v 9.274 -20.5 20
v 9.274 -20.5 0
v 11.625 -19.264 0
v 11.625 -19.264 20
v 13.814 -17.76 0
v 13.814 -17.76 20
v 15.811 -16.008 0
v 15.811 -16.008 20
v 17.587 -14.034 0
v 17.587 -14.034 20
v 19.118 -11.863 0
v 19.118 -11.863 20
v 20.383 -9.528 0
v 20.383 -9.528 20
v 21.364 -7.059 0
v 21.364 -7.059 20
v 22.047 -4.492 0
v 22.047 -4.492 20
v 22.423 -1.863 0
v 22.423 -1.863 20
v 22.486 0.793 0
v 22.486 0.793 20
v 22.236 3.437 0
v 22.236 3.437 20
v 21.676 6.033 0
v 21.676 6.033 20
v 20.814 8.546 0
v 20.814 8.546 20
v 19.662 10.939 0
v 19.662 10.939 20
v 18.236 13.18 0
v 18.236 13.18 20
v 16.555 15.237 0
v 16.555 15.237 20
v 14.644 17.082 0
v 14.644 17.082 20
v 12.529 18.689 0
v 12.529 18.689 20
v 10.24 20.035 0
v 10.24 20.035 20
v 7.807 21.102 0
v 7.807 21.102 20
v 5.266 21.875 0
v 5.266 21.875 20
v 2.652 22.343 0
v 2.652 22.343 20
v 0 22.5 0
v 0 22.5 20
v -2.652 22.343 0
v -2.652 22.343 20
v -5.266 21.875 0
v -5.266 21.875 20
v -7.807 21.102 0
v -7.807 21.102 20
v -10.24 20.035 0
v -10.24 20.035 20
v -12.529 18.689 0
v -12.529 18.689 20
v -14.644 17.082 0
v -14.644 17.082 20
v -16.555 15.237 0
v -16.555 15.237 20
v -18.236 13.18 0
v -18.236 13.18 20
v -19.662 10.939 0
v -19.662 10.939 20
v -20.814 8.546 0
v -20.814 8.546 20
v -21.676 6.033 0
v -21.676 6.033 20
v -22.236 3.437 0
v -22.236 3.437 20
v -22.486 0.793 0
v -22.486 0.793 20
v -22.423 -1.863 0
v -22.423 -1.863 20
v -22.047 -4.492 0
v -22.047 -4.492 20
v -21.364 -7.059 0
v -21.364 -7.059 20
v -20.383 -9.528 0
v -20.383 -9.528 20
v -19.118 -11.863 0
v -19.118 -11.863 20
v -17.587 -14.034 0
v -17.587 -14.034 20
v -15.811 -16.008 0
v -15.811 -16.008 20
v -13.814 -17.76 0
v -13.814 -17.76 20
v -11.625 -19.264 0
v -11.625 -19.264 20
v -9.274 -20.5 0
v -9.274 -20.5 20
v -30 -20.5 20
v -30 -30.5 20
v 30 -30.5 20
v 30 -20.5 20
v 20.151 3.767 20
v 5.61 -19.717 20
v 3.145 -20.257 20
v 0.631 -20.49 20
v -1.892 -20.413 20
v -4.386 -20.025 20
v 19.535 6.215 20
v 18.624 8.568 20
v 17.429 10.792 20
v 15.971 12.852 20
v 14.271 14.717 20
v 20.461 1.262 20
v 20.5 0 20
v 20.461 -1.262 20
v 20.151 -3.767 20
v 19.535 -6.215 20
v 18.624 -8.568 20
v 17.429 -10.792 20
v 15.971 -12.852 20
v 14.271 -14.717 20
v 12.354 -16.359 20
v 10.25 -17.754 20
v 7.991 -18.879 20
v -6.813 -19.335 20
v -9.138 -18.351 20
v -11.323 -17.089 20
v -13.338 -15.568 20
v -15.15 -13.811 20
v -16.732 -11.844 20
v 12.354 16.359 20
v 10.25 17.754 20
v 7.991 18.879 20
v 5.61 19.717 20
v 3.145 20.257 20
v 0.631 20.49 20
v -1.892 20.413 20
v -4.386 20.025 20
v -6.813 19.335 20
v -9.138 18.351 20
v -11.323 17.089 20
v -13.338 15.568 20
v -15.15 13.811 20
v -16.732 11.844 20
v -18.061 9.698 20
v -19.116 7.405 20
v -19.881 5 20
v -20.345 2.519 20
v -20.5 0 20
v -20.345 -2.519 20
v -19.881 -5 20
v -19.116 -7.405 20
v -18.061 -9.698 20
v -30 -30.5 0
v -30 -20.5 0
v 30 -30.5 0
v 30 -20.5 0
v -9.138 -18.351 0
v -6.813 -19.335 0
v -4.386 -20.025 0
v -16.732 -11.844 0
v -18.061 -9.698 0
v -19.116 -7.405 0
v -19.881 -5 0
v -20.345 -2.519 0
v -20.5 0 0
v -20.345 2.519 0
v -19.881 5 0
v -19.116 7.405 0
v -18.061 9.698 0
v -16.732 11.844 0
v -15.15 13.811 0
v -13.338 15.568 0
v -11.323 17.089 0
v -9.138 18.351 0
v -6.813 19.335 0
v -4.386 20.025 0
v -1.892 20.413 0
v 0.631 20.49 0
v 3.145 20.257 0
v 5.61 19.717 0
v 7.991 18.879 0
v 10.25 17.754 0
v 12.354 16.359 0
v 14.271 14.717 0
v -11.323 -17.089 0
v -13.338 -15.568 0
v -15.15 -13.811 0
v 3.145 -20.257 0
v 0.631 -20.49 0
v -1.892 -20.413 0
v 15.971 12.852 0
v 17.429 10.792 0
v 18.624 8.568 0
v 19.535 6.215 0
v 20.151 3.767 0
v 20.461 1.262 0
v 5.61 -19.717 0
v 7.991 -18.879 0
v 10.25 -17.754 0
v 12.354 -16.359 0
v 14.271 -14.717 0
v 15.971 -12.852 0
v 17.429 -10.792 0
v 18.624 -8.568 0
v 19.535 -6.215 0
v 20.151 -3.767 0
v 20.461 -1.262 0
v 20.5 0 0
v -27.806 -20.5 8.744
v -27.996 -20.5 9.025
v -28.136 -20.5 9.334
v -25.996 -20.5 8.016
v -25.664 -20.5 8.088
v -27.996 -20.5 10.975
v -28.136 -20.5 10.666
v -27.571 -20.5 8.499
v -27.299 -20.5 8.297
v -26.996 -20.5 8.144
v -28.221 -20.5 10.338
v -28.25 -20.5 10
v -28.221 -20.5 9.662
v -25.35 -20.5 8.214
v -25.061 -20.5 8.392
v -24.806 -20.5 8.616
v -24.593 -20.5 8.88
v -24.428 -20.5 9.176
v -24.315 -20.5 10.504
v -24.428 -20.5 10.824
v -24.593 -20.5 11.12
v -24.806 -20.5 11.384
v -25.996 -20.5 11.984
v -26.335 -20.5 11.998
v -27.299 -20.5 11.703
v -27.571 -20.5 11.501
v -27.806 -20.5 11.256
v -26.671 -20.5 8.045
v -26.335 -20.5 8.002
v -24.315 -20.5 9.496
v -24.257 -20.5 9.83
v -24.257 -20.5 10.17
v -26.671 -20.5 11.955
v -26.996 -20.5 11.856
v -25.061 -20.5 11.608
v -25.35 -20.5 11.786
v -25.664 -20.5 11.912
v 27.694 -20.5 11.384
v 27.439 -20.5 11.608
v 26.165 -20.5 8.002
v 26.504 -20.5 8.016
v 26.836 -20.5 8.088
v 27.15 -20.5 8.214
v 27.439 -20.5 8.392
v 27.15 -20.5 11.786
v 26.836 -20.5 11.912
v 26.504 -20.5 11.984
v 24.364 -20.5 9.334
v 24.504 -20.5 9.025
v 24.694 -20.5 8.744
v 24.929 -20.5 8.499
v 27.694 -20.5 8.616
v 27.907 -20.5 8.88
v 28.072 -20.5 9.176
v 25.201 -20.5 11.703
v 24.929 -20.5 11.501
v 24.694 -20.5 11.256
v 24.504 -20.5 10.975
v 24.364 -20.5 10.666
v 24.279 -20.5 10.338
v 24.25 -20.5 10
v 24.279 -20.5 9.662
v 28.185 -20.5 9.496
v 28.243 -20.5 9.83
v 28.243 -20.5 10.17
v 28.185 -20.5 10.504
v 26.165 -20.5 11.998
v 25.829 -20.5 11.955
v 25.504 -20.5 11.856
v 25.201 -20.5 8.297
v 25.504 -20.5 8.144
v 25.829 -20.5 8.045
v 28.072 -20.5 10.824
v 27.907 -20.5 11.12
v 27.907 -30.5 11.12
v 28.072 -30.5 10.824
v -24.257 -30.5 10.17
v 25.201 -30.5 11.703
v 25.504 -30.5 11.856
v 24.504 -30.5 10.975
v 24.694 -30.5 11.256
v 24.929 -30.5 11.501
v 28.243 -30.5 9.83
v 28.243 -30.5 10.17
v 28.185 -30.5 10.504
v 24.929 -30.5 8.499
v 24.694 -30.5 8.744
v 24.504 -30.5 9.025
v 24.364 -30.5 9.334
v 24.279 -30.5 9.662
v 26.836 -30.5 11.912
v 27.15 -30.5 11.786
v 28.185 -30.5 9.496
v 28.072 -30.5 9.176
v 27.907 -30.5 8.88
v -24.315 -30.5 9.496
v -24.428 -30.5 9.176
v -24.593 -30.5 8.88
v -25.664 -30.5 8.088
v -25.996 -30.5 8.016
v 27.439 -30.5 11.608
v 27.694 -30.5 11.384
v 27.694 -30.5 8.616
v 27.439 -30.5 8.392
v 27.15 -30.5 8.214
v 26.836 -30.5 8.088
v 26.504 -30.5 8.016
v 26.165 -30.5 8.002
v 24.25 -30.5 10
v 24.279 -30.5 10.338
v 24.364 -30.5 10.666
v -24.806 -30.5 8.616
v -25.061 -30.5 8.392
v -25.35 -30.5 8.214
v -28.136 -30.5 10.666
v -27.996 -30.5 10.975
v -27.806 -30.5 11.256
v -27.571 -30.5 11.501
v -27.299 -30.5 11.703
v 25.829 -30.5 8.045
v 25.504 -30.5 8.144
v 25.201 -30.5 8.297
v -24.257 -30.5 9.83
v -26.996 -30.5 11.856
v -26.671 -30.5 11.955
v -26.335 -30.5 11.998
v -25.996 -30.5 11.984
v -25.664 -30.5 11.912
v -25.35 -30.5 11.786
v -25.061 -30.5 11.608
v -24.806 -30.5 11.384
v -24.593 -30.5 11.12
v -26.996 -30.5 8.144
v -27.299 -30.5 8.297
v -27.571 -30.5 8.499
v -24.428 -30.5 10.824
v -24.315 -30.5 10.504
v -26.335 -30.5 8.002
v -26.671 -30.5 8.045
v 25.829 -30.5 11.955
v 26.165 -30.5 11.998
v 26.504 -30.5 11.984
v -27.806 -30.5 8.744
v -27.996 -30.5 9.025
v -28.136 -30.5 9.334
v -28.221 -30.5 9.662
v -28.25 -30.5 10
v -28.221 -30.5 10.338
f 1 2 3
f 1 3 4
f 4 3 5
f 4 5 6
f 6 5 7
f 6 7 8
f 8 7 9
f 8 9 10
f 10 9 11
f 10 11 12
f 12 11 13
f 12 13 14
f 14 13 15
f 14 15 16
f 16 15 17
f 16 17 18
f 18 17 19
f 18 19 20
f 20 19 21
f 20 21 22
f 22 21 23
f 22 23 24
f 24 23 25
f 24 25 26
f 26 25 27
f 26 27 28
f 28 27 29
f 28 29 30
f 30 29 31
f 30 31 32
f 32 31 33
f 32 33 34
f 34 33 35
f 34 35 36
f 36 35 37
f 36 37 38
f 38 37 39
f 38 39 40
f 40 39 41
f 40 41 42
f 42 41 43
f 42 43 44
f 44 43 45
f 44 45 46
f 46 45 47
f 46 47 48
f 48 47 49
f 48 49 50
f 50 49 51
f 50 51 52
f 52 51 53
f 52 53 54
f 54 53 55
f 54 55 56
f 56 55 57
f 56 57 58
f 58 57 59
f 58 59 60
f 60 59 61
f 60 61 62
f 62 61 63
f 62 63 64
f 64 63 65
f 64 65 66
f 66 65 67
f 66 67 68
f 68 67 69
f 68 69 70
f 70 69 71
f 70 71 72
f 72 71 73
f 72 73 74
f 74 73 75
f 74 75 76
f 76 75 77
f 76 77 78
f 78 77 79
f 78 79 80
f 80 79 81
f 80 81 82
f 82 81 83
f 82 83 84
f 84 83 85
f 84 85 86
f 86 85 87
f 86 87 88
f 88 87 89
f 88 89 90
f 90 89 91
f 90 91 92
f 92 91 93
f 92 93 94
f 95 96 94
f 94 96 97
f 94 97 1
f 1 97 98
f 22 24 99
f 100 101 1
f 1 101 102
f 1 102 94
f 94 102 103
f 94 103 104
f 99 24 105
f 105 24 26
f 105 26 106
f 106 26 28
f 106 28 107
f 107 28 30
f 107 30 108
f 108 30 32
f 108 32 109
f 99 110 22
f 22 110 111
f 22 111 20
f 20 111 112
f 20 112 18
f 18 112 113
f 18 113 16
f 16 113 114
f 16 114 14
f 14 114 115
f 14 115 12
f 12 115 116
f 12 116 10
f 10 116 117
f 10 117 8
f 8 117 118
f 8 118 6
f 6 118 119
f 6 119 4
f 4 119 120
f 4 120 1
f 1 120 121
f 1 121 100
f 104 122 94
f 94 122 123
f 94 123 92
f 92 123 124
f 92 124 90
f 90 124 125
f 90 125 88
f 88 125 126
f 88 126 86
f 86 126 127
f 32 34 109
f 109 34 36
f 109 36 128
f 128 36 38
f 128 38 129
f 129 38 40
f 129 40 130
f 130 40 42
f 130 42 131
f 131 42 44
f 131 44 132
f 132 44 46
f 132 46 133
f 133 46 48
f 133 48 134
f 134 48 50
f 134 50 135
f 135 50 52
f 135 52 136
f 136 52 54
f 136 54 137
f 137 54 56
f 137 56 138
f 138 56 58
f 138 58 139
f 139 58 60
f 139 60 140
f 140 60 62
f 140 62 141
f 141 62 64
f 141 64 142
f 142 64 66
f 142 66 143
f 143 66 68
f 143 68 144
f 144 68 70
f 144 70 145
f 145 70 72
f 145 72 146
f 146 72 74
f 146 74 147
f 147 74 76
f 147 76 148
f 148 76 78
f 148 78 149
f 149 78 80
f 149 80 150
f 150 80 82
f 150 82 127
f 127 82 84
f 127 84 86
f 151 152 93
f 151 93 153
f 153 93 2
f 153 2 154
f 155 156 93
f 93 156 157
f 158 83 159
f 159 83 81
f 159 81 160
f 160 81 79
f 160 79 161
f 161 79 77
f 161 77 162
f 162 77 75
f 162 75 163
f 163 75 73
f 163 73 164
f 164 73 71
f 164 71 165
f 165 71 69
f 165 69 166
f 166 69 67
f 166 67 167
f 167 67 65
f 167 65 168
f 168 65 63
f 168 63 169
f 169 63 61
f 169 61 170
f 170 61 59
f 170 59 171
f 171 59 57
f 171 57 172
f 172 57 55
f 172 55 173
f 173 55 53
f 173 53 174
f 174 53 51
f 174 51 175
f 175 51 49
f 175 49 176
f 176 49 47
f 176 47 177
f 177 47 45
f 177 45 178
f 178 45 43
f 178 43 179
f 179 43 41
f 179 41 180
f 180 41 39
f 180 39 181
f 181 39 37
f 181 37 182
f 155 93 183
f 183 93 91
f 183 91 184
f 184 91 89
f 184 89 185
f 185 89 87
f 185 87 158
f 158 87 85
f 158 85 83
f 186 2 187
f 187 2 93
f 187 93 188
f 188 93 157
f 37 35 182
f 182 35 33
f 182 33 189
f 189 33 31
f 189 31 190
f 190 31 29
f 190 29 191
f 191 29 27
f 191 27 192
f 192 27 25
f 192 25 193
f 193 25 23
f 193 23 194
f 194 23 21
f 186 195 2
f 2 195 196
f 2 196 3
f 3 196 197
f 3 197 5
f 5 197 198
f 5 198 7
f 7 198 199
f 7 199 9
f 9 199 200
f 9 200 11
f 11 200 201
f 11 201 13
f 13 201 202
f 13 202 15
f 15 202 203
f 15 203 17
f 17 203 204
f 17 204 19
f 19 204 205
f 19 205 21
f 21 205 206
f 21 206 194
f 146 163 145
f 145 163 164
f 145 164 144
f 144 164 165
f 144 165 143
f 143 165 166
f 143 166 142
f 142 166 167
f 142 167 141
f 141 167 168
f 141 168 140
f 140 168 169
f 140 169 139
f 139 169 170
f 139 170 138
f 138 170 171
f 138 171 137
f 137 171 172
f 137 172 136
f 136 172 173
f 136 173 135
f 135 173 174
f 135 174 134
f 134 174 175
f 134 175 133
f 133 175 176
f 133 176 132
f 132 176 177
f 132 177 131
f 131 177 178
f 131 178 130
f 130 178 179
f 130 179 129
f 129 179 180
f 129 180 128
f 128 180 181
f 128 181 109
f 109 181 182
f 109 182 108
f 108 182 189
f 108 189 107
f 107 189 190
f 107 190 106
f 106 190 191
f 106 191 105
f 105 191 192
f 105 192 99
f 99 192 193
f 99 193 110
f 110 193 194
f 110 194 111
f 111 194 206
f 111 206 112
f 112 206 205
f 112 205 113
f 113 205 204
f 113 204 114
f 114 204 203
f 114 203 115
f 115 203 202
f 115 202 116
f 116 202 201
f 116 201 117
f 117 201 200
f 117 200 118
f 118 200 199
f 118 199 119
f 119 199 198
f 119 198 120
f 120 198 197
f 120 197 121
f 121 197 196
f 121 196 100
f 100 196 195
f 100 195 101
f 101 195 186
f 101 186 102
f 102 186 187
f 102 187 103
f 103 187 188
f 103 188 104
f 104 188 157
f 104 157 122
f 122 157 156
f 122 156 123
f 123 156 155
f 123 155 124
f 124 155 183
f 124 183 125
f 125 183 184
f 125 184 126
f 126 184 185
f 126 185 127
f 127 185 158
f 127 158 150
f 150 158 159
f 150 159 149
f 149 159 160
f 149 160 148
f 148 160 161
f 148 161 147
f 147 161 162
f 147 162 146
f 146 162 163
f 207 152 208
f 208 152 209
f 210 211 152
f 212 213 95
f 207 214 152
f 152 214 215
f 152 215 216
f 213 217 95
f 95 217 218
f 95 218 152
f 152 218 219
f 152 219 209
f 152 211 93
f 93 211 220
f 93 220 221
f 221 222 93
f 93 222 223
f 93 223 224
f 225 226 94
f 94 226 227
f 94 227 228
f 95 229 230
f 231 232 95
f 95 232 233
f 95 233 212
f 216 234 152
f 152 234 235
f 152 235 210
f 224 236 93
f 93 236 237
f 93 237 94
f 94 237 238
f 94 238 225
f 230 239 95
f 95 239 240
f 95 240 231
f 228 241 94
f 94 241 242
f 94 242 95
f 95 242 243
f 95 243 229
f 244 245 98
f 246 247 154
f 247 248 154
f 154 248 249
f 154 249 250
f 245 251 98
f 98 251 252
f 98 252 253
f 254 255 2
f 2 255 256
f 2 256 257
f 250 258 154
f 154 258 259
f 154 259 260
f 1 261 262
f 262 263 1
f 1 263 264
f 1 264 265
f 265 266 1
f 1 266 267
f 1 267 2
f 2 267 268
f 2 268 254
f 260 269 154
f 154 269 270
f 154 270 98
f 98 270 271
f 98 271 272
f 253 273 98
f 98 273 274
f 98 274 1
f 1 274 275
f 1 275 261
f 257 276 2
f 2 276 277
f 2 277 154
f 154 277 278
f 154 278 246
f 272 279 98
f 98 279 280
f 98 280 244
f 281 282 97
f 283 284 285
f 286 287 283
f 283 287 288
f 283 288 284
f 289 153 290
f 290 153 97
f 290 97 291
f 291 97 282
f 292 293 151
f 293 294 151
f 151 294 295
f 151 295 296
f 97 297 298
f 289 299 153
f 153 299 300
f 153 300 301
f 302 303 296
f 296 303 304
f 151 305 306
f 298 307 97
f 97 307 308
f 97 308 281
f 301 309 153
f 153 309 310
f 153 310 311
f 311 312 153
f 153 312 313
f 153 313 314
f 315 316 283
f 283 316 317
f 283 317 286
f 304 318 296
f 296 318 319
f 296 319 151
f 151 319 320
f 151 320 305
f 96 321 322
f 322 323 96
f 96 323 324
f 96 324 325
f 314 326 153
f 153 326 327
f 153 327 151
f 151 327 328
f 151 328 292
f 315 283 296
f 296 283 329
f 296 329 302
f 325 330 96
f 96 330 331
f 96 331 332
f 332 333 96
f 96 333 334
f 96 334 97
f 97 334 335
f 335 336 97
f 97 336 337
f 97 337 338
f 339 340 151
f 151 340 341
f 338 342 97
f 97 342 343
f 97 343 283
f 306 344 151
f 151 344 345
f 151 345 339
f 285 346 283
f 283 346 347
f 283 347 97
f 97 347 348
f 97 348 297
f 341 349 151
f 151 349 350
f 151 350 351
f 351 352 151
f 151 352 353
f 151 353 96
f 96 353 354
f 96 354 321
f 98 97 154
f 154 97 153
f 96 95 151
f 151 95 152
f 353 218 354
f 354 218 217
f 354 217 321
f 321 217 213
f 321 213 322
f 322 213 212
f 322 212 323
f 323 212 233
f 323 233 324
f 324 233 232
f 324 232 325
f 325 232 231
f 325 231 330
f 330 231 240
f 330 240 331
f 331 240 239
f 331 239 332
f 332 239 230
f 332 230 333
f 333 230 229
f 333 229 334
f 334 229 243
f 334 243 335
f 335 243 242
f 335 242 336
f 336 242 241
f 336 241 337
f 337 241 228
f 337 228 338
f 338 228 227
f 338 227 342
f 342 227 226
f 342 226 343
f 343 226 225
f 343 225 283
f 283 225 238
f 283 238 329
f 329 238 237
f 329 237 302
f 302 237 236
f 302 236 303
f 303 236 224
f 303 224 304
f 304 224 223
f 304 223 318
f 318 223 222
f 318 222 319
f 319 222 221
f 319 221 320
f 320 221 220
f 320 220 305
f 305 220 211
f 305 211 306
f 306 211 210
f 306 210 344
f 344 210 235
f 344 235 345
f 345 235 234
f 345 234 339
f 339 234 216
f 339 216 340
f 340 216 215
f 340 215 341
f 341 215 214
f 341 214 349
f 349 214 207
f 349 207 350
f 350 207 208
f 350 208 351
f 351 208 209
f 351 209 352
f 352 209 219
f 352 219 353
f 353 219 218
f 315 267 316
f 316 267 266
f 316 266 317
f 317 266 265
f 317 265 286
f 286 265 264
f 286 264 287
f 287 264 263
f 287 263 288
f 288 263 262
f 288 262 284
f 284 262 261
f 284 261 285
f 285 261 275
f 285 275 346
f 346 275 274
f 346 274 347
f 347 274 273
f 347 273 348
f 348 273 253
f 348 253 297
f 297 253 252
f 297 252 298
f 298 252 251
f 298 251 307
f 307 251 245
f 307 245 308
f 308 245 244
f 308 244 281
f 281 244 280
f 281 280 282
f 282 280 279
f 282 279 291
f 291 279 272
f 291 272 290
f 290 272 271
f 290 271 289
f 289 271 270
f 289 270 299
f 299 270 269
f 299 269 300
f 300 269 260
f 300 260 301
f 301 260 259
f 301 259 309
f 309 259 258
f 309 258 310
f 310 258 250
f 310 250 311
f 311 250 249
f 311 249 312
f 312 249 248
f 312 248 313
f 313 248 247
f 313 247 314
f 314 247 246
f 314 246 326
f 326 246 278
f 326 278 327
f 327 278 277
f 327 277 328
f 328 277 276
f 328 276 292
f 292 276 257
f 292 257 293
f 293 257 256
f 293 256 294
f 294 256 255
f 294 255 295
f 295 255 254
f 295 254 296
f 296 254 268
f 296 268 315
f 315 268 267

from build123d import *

# Parameters (mm, degrees)
SKETCH1_R           = 22.5
SKETCH1_R_2         = 20.5
BOSS_EXTRUDE2_DEPTH = 20
SKETCH2_W           = 60
SKETCH2_H           = 10
BOSS_EXTRUDE3_DEPTH = 20
SKETCH3_R           = 2
CUT_EXTRUDE1_DEPTH  = 20


with BuildPart() as part:
    # Sketch1 → Boss-Extrude2 (new body)
    with BuildSketch(Plane.XY):
        Circle(SKETCH1_R)
        Circle(SKETCH1_R_2, mode=Mode.SUBTRACT)
    extrude(amount=BOSS_EXTRUDE2_DEPTH)

    # Sketch2 → Boss-Extrude3 (add)
    with BuildSketch(Plane(origin=(0, 0, 0), x_dir=(-1, 0, 0), z_dir=(0, 0, -1))):
        with Locations((0, -25.5)):
            Rectangle(SKETCH2_W, SKETCH2_H)
    extrude(amount=-BOSS_EXTRUDE3_DEPTH)

    # Sketch3 → Cut-Extrude1 (cut)
    with BuildSketch(Plane(origin=(0, -20.5, 0), x_dir=(1, 0, 0), z_dir=(0, 1, 0))):
        with Locations(Location((26.25, -10, 0), (0, 0, 180))):
            Circle(SKETCH3_R)
        with Locations(Location((-26.25, -10, 0), (0, 0, 180))):
            Circle(SKETCH3_R)
    extrude(amount=-CUT_EXTRUDE1_DEPTH, mode=Mode.SUBTRACT)


solid = part.part
